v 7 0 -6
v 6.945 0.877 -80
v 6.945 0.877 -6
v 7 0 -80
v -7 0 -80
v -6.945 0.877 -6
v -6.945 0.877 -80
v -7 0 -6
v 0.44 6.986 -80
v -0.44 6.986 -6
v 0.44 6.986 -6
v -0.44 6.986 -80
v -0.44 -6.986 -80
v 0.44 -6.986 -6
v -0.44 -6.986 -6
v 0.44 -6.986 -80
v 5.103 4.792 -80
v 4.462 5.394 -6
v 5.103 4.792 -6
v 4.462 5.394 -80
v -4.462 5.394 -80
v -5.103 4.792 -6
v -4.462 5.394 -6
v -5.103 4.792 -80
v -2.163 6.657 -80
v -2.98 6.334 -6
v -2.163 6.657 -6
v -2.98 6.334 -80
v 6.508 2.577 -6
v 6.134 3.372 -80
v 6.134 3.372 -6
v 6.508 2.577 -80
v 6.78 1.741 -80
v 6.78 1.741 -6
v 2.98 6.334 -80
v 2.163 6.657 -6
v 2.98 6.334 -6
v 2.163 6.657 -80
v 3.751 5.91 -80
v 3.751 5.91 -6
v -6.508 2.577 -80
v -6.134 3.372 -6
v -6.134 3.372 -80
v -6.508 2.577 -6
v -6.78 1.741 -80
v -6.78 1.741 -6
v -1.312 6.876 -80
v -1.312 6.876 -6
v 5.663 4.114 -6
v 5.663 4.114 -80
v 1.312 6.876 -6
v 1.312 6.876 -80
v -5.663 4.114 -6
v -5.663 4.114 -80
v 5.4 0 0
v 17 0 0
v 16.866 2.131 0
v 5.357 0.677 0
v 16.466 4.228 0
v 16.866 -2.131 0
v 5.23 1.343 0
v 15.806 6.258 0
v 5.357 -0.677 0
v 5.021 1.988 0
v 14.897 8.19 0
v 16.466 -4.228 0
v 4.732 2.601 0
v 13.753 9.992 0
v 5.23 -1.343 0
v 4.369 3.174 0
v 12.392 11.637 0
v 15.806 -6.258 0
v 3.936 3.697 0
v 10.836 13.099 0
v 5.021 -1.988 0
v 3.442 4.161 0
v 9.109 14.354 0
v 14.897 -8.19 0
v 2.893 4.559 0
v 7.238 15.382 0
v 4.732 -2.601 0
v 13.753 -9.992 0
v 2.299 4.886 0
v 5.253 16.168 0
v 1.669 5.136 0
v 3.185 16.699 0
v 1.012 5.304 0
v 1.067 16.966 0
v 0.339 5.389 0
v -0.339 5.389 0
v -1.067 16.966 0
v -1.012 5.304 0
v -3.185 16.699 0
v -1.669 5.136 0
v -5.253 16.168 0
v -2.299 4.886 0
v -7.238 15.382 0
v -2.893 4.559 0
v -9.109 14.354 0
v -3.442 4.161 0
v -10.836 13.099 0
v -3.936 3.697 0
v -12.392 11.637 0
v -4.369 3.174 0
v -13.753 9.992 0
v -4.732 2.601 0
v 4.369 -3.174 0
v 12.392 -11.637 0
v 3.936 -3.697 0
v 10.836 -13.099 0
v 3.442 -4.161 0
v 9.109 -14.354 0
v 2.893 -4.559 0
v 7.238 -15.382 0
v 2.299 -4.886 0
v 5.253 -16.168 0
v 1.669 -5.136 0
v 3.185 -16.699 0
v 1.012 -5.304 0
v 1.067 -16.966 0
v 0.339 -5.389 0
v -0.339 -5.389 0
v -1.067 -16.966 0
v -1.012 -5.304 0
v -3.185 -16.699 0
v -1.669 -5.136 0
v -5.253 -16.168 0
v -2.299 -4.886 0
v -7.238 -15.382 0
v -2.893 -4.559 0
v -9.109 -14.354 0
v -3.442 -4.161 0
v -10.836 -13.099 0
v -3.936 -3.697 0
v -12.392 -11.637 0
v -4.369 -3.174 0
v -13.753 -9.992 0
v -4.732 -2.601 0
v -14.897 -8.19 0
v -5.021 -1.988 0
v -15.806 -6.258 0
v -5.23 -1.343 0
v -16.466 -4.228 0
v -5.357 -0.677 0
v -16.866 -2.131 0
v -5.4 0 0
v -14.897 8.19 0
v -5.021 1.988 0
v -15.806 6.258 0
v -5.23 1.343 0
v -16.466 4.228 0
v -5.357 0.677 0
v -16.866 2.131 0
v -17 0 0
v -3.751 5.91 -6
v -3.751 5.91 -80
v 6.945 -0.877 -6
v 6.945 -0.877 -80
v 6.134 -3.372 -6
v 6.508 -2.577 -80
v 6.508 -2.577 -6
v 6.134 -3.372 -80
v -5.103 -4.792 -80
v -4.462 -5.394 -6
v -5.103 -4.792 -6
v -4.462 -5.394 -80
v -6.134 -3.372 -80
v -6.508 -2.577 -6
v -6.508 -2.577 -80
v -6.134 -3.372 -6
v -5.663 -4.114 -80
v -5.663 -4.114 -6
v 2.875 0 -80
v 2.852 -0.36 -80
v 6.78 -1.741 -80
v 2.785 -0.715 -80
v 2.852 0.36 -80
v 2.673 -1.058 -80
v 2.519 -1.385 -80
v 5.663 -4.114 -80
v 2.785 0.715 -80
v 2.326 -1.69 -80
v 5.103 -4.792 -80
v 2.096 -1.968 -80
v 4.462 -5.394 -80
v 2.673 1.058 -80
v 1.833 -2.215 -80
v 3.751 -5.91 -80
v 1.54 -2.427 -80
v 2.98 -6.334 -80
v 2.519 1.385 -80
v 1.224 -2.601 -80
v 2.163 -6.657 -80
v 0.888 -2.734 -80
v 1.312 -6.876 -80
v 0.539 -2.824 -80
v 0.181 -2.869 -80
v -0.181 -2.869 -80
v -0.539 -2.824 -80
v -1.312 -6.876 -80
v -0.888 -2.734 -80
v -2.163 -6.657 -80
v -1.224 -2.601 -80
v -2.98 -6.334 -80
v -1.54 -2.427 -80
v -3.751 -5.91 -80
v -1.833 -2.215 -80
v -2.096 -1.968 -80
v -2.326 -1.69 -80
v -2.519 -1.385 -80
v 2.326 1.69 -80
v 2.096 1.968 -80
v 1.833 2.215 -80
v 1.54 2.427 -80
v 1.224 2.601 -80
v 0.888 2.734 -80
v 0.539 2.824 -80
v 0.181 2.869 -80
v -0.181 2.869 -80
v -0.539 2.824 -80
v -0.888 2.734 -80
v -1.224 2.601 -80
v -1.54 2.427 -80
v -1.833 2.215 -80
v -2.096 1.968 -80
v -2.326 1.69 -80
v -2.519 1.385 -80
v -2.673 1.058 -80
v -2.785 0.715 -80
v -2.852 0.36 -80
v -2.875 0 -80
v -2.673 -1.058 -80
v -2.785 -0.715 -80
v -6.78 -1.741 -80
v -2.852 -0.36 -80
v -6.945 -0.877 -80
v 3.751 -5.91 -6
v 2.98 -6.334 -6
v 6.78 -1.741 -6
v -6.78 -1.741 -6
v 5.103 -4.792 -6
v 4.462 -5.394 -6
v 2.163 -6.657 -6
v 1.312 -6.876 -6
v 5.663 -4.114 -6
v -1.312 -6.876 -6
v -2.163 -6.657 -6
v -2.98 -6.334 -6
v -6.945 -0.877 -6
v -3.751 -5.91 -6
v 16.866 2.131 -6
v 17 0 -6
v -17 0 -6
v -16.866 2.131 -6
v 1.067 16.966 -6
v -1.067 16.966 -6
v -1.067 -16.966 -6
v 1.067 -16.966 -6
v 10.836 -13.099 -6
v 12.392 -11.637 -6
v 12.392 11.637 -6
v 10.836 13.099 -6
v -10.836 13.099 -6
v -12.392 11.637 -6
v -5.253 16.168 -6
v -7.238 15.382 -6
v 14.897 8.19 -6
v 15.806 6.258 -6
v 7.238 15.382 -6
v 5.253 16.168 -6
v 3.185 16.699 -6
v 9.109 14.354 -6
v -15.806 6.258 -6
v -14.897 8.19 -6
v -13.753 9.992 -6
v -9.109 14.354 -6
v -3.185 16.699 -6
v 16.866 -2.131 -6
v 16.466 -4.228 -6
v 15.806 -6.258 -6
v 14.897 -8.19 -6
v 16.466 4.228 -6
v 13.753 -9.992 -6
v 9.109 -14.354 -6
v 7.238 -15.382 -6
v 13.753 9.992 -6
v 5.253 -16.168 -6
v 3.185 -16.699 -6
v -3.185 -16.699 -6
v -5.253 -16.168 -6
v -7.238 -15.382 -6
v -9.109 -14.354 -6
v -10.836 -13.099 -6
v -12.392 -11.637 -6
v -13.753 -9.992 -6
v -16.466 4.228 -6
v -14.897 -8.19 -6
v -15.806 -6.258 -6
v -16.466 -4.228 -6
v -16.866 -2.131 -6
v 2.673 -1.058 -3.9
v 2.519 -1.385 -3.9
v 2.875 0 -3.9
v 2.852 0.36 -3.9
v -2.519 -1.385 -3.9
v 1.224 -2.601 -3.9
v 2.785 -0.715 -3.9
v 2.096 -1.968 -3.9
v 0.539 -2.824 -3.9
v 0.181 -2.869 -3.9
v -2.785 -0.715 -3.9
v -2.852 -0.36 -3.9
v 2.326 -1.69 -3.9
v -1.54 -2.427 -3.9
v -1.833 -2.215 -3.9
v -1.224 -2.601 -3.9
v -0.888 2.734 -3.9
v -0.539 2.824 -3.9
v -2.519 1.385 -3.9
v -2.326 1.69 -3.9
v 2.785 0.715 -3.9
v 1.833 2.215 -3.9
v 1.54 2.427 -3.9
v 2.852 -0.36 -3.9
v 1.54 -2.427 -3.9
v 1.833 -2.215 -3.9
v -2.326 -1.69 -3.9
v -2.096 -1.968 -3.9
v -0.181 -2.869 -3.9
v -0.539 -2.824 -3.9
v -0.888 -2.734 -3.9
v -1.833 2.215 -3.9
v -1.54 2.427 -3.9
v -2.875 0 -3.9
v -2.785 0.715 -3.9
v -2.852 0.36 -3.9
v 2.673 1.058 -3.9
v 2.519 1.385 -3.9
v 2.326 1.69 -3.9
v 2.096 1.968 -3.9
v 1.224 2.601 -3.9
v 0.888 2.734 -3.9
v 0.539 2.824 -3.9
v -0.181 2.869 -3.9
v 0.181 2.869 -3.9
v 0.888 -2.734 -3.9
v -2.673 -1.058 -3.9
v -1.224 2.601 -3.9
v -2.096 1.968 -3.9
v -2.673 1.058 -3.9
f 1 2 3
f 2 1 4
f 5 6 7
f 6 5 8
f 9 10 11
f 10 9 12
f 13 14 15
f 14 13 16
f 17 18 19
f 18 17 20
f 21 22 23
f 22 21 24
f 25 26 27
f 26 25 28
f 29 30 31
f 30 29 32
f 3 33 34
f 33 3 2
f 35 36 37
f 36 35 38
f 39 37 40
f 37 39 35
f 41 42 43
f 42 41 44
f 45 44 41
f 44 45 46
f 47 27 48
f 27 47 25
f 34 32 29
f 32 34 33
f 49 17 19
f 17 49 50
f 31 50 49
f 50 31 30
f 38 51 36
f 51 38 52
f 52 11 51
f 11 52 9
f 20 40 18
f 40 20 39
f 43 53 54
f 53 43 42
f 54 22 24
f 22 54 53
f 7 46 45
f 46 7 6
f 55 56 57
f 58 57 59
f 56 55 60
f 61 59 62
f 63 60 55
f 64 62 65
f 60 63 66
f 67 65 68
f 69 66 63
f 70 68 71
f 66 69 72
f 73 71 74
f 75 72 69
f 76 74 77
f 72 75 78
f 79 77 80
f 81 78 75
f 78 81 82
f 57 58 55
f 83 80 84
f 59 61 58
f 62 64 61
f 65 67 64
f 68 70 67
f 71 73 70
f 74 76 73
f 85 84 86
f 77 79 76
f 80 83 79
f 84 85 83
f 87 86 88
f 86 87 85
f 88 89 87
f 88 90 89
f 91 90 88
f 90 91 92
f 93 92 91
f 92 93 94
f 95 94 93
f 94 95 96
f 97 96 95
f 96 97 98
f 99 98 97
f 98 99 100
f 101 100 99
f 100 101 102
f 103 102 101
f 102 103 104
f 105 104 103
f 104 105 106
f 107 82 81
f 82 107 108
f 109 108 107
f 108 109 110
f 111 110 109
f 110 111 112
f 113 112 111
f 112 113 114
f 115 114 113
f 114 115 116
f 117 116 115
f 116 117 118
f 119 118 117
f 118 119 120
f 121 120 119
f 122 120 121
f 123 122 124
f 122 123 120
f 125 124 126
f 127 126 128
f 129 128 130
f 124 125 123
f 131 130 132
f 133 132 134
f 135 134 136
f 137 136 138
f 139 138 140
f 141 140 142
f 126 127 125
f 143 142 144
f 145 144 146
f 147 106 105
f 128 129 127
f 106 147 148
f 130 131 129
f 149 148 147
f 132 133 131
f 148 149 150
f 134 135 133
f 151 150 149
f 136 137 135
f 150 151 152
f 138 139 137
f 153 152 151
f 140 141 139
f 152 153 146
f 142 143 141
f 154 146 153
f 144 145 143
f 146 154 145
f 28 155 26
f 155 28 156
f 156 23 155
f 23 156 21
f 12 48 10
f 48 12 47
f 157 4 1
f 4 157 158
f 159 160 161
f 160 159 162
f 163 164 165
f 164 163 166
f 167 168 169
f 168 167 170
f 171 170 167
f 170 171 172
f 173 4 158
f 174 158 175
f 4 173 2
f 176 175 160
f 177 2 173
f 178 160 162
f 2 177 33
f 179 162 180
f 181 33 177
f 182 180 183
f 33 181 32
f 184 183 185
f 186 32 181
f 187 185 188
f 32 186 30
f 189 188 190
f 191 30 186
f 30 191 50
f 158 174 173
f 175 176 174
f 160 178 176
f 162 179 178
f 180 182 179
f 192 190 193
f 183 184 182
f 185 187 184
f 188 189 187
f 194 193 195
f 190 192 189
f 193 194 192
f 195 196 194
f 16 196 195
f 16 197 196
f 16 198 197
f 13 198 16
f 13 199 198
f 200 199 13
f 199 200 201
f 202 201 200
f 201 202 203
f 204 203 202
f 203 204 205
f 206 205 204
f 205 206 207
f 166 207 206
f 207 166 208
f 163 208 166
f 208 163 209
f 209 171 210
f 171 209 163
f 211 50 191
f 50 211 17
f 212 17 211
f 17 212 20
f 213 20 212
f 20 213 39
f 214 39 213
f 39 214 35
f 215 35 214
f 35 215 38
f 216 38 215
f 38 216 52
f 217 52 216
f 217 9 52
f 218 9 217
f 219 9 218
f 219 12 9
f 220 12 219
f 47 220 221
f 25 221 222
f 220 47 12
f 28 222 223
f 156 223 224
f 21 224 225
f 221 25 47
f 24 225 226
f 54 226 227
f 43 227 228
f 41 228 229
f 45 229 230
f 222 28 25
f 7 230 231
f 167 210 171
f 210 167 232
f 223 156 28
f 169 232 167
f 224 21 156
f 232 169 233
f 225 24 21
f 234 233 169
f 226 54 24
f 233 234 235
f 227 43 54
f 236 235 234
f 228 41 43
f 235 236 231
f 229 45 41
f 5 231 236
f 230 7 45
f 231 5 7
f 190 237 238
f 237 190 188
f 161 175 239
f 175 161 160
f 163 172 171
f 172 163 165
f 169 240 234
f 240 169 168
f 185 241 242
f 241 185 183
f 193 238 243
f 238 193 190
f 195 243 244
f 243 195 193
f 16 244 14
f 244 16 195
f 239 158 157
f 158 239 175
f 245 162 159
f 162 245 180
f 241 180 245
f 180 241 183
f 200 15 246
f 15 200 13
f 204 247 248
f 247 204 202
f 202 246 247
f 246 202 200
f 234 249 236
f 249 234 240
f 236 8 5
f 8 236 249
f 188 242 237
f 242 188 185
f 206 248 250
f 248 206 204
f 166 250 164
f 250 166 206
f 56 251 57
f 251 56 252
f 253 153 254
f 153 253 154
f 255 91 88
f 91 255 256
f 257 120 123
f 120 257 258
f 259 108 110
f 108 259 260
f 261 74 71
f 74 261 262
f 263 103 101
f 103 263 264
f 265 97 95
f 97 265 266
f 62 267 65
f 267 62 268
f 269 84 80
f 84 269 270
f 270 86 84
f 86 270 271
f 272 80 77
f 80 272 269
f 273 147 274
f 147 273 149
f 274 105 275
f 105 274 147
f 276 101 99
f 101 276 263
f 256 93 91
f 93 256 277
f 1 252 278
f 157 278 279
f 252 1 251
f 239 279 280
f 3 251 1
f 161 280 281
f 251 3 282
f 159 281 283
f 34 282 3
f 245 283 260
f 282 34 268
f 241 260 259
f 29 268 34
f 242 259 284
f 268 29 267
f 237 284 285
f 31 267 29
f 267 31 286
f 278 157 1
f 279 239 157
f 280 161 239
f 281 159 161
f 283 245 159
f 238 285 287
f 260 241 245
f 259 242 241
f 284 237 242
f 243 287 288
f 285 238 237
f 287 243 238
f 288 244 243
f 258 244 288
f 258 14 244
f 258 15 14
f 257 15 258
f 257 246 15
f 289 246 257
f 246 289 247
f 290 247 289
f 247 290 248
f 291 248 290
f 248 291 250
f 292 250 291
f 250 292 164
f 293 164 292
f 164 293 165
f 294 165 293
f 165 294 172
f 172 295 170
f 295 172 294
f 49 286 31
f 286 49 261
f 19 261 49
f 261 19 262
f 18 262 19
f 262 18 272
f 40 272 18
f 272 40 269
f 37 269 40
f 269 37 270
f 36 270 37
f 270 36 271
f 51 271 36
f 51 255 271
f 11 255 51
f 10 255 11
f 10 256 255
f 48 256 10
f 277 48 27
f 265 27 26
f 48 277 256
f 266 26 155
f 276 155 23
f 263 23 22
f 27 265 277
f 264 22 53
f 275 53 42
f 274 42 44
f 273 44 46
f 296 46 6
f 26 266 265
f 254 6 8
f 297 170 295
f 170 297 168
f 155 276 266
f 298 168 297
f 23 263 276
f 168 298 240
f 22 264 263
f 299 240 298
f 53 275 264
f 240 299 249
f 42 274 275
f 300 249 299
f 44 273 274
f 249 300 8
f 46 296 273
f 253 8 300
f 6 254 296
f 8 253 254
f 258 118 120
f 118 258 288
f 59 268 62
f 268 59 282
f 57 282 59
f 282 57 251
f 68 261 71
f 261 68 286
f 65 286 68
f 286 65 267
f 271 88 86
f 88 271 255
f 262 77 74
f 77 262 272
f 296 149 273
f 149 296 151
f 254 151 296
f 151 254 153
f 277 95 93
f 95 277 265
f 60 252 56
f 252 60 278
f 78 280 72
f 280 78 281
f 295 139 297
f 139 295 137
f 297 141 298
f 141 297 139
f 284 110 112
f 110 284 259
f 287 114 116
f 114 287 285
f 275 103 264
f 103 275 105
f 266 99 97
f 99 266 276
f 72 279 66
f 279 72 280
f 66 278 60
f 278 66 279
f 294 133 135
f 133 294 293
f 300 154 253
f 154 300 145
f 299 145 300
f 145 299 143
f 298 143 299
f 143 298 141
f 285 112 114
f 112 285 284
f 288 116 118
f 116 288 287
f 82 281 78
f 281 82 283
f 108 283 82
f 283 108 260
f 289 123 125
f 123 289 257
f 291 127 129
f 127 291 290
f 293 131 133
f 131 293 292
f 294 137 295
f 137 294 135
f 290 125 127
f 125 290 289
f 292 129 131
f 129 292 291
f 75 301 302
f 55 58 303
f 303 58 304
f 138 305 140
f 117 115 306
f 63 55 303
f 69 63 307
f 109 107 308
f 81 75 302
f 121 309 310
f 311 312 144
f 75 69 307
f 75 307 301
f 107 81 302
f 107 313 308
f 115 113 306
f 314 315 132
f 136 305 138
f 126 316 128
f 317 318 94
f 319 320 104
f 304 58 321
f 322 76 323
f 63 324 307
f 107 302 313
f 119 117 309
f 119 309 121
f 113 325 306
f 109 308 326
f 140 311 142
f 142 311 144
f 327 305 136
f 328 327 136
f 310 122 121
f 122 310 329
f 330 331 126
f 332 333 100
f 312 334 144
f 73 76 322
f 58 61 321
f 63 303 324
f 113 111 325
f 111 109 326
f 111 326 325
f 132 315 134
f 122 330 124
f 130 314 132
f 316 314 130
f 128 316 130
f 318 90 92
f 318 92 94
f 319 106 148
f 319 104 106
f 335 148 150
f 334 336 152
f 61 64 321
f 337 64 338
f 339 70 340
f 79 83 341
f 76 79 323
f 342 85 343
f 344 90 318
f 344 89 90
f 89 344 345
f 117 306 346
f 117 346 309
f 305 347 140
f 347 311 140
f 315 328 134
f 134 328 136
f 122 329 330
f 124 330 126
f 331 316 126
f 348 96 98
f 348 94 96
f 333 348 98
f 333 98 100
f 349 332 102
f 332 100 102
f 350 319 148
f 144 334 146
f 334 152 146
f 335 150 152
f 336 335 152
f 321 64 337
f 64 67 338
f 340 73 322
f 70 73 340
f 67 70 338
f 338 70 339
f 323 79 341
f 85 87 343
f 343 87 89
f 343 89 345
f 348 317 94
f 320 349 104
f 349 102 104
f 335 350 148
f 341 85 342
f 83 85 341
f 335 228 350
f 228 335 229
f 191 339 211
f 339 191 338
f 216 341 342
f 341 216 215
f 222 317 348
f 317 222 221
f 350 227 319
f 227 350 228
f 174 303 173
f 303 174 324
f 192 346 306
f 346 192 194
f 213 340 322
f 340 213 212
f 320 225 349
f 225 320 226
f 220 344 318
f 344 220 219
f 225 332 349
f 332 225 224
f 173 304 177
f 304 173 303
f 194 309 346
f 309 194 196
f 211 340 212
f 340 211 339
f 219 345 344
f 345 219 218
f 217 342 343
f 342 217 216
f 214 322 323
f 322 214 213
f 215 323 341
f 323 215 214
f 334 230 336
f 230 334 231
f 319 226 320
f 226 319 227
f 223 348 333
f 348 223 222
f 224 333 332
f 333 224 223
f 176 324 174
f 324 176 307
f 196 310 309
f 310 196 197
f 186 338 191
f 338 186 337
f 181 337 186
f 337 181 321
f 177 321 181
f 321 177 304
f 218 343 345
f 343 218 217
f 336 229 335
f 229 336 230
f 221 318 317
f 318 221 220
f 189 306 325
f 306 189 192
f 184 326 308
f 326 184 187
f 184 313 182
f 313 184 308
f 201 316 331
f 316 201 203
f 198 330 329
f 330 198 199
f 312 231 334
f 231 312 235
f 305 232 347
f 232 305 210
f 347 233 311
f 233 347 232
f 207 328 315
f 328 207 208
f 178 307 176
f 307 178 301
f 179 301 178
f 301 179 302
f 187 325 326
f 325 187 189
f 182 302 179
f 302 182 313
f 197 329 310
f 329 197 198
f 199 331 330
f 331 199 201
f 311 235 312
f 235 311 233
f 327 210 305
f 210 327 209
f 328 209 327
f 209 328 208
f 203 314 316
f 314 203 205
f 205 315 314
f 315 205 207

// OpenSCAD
$fn = 50;


difference() {
	union() {
		translate(v = [0, 0, -80.0000000000]) {
			cylinder(h = 80, r = 7.0000000000);
		}
		translate(v = [0, 0, -6.0000000000]) {
			cylinder(h = 6, r = 17.0000000000);
		}
	}
	union() {
		translate(v = [0, 0, 0]) {
			rotate(a = [0, 0, 0]) {
				difference() {
					union() {
						#translate(v = [0, 0, -80.0000000000]) {
							cylinder(h = 80, r = 2.6000000000);
						}
						#translate(v = [0, 0, -3.9000000000]) {
							cylinder(h = 3.9000000000, r1 = 2.8750000000, r2 = 5.4000000000);
						}
						#translate(v = [0, 0, -80.0000000000]) {
							cylinder(h = 80, r = 2.8750000000);
						}
						#translate(v = [0, 0, -80.0000000000]) {
							cylinder(h = 80, r = 2.6000000000);
						}
					}
					union();
				}
			}
		}
	}
}
